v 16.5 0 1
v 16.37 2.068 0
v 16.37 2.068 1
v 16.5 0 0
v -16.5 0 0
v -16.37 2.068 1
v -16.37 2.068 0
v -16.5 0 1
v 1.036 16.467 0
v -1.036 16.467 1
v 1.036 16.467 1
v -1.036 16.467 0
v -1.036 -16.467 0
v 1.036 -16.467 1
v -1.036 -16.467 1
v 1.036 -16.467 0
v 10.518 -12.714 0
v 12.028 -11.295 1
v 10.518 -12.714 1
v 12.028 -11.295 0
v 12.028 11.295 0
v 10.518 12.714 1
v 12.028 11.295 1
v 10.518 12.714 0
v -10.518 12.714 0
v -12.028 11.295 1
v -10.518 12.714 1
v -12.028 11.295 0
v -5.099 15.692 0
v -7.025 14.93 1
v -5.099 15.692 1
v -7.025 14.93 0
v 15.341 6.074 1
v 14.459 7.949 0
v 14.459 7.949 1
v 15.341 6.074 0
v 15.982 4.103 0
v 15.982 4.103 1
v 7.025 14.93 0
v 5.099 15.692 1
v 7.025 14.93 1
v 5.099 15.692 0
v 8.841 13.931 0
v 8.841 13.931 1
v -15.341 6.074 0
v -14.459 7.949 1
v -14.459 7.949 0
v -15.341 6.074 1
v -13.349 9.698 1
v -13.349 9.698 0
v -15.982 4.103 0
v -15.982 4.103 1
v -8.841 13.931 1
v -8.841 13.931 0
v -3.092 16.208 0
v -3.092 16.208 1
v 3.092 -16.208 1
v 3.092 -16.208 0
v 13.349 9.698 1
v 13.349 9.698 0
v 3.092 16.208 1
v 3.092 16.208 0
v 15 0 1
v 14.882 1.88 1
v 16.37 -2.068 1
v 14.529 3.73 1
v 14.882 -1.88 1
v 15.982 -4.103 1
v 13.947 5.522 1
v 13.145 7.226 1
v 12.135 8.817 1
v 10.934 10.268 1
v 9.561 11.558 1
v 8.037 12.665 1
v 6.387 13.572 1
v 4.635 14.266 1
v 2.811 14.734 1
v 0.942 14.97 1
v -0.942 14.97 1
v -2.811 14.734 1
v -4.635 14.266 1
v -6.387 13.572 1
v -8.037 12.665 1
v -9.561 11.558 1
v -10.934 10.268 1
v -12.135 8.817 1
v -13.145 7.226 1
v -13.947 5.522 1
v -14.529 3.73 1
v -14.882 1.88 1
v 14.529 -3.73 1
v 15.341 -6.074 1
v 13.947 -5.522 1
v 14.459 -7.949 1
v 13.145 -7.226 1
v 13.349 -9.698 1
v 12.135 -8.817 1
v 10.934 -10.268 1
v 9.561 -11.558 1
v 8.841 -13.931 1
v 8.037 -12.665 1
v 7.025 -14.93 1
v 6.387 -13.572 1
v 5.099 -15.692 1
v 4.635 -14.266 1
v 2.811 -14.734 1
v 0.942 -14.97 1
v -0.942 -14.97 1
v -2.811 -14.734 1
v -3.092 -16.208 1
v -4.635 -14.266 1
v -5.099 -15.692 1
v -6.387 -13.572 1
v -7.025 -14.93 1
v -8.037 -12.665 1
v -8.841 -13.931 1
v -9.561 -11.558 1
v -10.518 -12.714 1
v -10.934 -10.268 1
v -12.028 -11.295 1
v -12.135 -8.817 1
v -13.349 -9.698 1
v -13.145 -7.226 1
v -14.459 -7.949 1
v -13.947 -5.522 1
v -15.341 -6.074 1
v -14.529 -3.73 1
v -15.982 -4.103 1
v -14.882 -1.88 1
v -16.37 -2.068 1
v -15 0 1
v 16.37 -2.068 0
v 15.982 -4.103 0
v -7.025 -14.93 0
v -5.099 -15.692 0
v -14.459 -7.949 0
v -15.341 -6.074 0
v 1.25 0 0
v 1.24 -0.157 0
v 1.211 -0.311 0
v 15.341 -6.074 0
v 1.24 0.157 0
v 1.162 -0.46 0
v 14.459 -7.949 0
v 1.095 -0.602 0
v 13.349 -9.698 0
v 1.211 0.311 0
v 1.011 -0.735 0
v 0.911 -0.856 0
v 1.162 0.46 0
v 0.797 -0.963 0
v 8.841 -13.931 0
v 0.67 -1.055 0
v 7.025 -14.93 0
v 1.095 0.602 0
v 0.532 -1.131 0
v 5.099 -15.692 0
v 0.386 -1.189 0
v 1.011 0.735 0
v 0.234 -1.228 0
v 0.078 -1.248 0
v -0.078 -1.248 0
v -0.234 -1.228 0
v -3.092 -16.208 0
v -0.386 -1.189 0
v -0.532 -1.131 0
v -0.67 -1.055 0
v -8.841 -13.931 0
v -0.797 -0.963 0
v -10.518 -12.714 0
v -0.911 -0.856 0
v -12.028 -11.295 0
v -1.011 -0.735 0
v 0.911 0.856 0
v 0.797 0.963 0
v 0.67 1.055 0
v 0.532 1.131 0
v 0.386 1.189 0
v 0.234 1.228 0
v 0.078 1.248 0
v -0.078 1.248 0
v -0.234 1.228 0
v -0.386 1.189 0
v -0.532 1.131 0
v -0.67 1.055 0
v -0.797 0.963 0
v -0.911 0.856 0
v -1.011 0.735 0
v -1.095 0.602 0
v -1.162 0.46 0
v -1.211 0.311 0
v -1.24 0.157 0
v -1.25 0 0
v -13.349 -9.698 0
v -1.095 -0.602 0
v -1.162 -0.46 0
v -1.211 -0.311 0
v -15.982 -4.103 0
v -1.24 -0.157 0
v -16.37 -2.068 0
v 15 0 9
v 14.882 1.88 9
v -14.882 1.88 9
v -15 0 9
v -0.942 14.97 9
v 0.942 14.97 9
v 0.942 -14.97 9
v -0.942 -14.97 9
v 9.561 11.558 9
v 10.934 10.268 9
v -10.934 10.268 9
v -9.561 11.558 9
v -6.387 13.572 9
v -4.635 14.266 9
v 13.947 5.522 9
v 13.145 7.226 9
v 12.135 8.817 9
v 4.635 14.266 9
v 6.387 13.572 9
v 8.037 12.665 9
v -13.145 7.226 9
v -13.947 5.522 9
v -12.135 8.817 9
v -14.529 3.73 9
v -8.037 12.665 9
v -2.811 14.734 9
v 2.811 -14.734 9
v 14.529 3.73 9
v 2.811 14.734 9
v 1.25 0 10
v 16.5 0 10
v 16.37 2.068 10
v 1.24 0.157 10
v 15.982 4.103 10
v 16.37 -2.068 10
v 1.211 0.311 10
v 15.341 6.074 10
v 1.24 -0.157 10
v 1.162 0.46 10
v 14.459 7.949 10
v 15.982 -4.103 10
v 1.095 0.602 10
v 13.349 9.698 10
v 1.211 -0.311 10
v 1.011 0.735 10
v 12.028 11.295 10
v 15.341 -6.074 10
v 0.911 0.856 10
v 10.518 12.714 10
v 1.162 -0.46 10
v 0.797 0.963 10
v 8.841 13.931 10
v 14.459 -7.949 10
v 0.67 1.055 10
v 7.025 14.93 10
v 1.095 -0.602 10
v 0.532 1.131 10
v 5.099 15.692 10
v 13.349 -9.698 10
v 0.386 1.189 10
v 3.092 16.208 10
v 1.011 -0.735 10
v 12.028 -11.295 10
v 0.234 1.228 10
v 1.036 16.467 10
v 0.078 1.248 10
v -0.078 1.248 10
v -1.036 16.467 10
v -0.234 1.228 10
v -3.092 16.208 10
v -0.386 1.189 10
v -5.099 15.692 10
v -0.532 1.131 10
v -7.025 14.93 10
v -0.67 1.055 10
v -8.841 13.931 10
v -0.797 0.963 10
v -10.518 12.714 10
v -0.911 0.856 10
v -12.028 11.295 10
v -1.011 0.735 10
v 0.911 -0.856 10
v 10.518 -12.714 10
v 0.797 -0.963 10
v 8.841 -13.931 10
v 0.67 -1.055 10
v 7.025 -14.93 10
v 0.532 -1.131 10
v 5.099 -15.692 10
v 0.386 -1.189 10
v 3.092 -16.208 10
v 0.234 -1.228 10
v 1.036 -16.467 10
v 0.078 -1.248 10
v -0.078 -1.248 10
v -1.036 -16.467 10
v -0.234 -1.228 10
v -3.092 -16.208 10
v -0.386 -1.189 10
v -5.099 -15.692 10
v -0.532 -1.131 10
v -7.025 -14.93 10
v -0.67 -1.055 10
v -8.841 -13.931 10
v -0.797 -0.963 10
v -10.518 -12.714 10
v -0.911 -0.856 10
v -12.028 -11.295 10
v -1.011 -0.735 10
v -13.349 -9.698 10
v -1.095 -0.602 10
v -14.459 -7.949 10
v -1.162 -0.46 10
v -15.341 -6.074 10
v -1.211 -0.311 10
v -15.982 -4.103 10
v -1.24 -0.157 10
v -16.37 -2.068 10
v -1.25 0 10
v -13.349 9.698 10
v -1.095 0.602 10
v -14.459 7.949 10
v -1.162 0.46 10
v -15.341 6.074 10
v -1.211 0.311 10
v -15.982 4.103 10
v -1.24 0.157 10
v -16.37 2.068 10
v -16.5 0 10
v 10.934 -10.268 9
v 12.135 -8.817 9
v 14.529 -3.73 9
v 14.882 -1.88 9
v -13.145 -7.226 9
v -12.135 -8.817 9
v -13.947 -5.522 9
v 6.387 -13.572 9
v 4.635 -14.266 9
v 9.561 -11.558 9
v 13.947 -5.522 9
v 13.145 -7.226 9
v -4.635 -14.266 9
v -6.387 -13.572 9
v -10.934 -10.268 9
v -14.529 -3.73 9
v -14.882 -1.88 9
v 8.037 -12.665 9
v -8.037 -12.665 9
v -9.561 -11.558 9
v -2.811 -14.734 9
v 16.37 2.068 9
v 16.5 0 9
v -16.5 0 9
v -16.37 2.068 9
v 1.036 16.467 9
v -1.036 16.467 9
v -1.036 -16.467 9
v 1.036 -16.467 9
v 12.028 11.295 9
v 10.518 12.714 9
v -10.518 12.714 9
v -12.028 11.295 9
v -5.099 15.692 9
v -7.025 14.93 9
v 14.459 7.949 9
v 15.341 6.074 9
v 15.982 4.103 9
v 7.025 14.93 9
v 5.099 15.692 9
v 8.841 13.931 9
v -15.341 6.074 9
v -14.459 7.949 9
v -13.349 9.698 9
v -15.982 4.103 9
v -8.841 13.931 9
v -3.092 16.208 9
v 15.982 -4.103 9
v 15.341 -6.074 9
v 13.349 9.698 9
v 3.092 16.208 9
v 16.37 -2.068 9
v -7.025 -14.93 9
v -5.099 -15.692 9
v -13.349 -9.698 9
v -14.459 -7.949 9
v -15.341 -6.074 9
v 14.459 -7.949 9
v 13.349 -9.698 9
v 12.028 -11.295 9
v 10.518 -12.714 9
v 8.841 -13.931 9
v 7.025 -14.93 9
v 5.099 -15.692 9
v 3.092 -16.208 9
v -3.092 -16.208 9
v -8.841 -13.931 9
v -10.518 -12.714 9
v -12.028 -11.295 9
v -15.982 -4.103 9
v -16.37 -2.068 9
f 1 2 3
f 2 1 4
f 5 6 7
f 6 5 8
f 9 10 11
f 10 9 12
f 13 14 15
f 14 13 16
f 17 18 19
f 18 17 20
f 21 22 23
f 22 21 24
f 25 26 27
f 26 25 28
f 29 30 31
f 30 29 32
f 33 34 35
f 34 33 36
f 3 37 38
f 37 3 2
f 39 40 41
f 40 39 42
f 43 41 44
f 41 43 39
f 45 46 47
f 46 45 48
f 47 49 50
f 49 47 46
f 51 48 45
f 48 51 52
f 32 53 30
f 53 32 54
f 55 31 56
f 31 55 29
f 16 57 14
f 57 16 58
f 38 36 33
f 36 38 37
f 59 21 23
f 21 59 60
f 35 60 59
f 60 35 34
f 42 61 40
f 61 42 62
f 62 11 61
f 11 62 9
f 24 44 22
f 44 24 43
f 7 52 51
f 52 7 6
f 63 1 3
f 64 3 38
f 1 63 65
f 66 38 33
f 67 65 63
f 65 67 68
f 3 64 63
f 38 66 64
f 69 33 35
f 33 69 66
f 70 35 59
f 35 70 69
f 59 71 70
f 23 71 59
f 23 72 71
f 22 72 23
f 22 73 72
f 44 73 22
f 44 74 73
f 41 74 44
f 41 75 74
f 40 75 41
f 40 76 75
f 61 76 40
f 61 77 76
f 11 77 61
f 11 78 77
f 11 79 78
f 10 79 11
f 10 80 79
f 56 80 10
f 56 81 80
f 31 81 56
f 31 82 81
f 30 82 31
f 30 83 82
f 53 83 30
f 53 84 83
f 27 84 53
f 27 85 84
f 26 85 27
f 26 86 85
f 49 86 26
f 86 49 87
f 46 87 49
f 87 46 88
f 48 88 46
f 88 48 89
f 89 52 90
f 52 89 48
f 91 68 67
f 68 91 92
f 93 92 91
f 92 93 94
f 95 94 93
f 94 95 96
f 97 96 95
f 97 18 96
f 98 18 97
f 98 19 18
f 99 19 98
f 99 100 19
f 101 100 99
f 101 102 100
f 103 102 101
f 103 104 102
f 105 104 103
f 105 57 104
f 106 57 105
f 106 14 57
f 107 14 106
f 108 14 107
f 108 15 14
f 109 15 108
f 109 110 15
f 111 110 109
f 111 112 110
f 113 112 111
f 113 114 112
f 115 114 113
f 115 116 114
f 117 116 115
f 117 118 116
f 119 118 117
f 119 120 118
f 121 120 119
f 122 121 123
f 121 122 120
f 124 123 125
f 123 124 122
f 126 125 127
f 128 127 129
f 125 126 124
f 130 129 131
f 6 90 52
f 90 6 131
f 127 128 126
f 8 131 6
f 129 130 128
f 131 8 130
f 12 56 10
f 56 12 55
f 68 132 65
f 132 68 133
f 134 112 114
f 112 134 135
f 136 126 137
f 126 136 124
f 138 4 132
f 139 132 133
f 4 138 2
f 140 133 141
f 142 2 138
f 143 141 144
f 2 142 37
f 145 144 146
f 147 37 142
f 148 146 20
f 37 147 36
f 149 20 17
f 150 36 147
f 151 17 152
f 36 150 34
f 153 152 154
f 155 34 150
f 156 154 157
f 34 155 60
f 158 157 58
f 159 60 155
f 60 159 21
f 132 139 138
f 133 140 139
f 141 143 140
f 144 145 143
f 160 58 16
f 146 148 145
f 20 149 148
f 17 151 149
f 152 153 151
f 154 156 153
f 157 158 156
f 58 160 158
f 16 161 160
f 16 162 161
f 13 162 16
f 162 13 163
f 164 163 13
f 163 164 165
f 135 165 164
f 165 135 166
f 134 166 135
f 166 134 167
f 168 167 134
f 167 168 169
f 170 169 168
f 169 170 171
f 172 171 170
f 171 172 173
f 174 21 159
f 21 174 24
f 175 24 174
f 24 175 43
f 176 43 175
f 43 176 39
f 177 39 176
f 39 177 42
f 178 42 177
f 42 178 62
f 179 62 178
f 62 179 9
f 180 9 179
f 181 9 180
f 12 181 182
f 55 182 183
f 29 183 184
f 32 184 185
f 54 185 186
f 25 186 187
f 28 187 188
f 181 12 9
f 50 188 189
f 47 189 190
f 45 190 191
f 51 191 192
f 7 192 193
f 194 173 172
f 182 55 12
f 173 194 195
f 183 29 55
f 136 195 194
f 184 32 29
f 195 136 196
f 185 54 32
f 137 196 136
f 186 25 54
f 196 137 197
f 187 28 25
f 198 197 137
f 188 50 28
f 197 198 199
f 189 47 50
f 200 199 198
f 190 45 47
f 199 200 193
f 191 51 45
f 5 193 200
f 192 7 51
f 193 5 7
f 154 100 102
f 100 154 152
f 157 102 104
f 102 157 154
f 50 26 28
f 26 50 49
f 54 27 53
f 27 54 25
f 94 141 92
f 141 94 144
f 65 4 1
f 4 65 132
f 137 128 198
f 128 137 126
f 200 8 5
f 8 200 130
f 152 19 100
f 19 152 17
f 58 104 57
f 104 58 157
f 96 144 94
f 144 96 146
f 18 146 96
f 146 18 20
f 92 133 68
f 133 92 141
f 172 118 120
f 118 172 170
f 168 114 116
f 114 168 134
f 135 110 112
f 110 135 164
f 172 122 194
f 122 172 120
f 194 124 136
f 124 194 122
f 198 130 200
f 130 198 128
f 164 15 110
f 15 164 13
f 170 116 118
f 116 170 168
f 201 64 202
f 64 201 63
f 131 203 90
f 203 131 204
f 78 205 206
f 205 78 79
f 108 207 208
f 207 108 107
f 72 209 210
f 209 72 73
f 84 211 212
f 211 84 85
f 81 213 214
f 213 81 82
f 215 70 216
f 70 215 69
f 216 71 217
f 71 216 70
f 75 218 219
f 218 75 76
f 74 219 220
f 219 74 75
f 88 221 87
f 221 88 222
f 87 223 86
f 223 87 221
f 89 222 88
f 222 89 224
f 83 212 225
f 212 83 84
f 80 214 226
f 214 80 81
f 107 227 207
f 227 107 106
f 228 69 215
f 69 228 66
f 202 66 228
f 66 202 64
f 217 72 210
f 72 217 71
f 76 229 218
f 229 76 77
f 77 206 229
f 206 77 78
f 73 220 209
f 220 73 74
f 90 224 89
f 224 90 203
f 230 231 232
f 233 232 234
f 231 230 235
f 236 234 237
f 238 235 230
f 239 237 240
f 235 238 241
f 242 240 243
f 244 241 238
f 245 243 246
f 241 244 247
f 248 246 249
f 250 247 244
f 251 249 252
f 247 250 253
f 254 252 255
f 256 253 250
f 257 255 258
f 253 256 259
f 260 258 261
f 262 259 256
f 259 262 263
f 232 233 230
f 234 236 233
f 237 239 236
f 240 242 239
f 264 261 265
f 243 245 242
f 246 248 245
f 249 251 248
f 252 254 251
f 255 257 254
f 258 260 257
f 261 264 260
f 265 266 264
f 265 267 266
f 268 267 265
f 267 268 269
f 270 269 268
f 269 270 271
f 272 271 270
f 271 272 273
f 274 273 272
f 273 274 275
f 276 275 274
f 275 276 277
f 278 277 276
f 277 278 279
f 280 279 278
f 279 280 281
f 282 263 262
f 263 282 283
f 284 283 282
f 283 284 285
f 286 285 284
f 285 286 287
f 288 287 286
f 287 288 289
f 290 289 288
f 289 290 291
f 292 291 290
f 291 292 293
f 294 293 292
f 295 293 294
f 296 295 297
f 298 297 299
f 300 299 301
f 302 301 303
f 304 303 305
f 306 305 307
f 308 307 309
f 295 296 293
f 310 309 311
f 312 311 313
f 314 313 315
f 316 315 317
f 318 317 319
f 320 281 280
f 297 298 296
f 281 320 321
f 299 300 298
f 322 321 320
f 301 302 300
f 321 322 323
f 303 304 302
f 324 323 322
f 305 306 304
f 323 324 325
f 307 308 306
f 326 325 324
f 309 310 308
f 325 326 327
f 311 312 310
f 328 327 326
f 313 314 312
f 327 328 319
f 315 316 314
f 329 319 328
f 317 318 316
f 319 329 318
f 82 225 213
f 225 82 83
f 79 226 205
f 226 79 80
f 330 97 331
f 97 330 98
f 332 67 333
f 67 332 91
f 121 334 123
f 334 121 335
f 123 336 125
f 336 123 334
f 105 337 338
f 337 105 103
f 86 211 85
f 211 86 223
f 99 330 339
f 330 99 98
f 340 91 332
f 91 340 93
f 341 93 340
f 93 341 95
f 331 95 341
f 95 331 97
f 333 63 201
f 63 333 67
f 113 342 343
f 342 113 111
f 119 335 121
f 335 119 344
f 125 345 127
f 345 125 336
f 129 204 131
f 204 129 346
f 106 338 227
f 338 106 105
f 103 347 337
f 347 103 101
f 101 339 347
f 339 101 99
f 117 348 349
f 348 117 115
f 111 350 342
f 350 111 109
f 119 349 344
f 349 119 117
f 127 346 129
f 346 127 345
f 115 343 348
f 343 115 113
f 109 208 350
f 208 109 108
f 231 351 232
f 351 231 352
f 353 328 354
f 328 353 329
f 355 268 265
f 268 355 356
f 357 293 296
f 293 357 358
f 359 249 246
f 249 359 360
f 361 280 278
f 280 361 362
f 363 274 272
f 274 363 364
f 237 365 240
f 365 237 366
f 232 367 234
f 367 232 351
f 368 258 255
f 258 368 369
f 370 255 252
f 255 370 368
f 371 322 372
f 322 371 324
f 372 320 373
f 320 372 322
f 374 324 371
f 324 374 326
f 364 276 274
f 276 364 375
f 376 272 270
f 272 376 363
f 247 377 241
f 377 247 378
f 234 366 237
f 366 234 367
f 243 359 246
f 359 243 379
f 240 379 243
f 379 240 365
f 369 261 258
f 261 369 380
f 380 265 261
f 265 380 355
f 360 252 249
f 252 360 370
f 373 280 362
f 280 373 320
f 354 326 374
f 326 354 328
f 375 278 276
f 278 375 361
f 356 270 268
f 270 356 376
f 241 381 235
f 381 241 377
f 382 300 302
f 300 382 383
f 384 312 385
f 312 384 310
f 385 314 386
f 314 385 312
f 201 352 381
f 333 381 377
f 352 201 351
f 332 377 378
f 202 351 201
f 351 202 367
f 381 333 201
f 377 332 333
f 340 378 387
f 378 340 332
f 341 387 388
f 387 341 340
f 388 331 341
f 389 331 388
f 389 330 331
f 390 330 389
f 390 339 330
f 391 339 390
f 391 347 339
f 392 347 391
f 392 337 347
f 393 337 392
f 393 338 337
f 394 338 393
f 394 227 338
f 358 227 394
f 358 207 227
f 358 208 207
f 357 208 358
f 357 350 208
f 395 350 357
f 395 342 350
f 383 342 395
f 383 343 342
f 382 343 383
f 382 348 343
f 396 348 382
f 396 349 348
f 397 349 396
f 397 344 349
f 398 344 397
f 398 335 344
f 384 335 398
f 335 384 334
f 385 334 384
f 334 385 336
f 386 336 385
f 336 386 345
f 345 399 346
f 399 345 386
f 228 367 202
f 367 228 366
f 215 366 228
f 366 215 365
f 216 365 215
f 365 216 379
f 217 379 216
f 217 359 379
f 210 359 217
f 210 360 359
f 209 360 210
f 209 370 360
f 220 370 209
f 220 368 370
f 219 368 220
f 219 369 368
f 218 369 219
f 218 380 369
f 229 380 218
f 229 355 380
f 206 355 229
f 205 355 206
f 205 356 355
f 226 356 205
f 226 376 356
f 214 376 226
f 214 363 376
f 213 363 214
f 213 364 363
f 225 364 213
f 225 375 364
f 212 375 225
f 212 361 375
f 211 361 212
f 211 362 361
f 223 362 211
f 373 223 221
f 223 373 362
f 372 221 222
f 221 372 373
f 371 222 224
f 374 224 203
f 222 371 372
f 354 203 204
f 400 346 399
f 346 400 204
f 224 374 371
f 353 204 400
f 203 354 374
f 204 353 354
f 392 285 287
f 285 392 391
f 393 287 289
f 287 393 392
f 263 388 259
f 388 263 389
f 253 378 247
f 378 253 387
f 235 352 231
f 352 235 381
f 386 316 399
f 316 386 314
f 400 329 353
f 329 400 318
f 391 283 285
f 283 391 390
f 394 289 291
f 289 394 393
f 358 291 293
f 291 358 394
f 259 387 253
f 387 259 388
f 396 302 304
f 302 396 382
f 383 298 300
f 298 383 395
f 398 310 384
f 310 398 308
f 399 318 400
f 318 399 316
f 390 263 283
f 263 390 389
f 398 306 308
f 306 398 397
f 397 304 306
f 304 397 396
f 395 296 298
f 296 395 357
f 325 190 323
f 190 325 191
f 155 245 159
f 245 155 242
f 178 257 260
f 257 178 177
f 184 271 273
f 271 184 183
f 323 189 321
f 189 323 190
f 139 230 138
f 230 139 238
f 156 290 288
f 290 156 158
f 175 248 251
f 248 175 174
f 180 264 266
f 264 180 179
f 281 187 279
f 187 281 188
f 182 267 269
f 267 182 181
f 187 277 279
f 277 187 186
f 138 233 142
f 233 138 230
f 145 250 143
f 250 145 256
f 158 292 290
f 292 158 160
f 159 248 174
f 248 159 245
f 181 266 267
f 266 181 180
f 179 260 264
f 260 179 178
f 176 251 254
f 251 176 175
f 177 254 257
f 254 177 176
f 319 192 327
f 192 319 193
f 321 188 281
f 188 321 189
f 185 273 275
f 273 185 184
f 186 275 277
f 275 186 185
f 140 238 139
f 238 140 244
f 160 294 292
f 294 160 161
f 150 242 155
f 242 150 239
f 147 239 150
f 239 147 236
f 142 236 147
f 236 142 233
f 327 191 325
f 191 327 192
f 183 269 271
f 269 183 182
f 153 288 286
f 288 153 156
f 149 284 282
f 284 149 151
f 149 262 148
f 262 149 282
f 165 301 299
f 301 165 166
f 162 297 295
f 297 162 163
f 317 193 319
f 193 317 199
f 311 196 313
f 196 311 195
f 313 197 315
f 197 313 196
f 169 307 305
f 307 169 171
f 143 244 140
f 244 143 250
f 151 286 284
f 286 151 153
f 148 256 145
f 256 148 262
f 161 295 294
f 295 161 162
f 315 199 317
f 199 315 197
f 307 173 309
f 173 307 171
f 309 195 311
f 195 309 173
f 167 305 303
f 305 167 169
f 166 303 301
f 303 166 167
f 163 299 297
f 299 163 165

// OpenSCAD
$fn=50;
axle_diam=2.5;

rimy = 1;
overhang=3;

module main(diam, h) {
    difference() {
        union() {
            translate([0,0,0]) cylinder(d=diam+overhang, rimy);
            cylinder(d=diam, h);
            translate([0,0,h-rimy]) cylinder(d=diam+overhang, rimy);
        }
        cylinder(d=axle_diam,h);
    }
    
    
}

main(30, 10);
